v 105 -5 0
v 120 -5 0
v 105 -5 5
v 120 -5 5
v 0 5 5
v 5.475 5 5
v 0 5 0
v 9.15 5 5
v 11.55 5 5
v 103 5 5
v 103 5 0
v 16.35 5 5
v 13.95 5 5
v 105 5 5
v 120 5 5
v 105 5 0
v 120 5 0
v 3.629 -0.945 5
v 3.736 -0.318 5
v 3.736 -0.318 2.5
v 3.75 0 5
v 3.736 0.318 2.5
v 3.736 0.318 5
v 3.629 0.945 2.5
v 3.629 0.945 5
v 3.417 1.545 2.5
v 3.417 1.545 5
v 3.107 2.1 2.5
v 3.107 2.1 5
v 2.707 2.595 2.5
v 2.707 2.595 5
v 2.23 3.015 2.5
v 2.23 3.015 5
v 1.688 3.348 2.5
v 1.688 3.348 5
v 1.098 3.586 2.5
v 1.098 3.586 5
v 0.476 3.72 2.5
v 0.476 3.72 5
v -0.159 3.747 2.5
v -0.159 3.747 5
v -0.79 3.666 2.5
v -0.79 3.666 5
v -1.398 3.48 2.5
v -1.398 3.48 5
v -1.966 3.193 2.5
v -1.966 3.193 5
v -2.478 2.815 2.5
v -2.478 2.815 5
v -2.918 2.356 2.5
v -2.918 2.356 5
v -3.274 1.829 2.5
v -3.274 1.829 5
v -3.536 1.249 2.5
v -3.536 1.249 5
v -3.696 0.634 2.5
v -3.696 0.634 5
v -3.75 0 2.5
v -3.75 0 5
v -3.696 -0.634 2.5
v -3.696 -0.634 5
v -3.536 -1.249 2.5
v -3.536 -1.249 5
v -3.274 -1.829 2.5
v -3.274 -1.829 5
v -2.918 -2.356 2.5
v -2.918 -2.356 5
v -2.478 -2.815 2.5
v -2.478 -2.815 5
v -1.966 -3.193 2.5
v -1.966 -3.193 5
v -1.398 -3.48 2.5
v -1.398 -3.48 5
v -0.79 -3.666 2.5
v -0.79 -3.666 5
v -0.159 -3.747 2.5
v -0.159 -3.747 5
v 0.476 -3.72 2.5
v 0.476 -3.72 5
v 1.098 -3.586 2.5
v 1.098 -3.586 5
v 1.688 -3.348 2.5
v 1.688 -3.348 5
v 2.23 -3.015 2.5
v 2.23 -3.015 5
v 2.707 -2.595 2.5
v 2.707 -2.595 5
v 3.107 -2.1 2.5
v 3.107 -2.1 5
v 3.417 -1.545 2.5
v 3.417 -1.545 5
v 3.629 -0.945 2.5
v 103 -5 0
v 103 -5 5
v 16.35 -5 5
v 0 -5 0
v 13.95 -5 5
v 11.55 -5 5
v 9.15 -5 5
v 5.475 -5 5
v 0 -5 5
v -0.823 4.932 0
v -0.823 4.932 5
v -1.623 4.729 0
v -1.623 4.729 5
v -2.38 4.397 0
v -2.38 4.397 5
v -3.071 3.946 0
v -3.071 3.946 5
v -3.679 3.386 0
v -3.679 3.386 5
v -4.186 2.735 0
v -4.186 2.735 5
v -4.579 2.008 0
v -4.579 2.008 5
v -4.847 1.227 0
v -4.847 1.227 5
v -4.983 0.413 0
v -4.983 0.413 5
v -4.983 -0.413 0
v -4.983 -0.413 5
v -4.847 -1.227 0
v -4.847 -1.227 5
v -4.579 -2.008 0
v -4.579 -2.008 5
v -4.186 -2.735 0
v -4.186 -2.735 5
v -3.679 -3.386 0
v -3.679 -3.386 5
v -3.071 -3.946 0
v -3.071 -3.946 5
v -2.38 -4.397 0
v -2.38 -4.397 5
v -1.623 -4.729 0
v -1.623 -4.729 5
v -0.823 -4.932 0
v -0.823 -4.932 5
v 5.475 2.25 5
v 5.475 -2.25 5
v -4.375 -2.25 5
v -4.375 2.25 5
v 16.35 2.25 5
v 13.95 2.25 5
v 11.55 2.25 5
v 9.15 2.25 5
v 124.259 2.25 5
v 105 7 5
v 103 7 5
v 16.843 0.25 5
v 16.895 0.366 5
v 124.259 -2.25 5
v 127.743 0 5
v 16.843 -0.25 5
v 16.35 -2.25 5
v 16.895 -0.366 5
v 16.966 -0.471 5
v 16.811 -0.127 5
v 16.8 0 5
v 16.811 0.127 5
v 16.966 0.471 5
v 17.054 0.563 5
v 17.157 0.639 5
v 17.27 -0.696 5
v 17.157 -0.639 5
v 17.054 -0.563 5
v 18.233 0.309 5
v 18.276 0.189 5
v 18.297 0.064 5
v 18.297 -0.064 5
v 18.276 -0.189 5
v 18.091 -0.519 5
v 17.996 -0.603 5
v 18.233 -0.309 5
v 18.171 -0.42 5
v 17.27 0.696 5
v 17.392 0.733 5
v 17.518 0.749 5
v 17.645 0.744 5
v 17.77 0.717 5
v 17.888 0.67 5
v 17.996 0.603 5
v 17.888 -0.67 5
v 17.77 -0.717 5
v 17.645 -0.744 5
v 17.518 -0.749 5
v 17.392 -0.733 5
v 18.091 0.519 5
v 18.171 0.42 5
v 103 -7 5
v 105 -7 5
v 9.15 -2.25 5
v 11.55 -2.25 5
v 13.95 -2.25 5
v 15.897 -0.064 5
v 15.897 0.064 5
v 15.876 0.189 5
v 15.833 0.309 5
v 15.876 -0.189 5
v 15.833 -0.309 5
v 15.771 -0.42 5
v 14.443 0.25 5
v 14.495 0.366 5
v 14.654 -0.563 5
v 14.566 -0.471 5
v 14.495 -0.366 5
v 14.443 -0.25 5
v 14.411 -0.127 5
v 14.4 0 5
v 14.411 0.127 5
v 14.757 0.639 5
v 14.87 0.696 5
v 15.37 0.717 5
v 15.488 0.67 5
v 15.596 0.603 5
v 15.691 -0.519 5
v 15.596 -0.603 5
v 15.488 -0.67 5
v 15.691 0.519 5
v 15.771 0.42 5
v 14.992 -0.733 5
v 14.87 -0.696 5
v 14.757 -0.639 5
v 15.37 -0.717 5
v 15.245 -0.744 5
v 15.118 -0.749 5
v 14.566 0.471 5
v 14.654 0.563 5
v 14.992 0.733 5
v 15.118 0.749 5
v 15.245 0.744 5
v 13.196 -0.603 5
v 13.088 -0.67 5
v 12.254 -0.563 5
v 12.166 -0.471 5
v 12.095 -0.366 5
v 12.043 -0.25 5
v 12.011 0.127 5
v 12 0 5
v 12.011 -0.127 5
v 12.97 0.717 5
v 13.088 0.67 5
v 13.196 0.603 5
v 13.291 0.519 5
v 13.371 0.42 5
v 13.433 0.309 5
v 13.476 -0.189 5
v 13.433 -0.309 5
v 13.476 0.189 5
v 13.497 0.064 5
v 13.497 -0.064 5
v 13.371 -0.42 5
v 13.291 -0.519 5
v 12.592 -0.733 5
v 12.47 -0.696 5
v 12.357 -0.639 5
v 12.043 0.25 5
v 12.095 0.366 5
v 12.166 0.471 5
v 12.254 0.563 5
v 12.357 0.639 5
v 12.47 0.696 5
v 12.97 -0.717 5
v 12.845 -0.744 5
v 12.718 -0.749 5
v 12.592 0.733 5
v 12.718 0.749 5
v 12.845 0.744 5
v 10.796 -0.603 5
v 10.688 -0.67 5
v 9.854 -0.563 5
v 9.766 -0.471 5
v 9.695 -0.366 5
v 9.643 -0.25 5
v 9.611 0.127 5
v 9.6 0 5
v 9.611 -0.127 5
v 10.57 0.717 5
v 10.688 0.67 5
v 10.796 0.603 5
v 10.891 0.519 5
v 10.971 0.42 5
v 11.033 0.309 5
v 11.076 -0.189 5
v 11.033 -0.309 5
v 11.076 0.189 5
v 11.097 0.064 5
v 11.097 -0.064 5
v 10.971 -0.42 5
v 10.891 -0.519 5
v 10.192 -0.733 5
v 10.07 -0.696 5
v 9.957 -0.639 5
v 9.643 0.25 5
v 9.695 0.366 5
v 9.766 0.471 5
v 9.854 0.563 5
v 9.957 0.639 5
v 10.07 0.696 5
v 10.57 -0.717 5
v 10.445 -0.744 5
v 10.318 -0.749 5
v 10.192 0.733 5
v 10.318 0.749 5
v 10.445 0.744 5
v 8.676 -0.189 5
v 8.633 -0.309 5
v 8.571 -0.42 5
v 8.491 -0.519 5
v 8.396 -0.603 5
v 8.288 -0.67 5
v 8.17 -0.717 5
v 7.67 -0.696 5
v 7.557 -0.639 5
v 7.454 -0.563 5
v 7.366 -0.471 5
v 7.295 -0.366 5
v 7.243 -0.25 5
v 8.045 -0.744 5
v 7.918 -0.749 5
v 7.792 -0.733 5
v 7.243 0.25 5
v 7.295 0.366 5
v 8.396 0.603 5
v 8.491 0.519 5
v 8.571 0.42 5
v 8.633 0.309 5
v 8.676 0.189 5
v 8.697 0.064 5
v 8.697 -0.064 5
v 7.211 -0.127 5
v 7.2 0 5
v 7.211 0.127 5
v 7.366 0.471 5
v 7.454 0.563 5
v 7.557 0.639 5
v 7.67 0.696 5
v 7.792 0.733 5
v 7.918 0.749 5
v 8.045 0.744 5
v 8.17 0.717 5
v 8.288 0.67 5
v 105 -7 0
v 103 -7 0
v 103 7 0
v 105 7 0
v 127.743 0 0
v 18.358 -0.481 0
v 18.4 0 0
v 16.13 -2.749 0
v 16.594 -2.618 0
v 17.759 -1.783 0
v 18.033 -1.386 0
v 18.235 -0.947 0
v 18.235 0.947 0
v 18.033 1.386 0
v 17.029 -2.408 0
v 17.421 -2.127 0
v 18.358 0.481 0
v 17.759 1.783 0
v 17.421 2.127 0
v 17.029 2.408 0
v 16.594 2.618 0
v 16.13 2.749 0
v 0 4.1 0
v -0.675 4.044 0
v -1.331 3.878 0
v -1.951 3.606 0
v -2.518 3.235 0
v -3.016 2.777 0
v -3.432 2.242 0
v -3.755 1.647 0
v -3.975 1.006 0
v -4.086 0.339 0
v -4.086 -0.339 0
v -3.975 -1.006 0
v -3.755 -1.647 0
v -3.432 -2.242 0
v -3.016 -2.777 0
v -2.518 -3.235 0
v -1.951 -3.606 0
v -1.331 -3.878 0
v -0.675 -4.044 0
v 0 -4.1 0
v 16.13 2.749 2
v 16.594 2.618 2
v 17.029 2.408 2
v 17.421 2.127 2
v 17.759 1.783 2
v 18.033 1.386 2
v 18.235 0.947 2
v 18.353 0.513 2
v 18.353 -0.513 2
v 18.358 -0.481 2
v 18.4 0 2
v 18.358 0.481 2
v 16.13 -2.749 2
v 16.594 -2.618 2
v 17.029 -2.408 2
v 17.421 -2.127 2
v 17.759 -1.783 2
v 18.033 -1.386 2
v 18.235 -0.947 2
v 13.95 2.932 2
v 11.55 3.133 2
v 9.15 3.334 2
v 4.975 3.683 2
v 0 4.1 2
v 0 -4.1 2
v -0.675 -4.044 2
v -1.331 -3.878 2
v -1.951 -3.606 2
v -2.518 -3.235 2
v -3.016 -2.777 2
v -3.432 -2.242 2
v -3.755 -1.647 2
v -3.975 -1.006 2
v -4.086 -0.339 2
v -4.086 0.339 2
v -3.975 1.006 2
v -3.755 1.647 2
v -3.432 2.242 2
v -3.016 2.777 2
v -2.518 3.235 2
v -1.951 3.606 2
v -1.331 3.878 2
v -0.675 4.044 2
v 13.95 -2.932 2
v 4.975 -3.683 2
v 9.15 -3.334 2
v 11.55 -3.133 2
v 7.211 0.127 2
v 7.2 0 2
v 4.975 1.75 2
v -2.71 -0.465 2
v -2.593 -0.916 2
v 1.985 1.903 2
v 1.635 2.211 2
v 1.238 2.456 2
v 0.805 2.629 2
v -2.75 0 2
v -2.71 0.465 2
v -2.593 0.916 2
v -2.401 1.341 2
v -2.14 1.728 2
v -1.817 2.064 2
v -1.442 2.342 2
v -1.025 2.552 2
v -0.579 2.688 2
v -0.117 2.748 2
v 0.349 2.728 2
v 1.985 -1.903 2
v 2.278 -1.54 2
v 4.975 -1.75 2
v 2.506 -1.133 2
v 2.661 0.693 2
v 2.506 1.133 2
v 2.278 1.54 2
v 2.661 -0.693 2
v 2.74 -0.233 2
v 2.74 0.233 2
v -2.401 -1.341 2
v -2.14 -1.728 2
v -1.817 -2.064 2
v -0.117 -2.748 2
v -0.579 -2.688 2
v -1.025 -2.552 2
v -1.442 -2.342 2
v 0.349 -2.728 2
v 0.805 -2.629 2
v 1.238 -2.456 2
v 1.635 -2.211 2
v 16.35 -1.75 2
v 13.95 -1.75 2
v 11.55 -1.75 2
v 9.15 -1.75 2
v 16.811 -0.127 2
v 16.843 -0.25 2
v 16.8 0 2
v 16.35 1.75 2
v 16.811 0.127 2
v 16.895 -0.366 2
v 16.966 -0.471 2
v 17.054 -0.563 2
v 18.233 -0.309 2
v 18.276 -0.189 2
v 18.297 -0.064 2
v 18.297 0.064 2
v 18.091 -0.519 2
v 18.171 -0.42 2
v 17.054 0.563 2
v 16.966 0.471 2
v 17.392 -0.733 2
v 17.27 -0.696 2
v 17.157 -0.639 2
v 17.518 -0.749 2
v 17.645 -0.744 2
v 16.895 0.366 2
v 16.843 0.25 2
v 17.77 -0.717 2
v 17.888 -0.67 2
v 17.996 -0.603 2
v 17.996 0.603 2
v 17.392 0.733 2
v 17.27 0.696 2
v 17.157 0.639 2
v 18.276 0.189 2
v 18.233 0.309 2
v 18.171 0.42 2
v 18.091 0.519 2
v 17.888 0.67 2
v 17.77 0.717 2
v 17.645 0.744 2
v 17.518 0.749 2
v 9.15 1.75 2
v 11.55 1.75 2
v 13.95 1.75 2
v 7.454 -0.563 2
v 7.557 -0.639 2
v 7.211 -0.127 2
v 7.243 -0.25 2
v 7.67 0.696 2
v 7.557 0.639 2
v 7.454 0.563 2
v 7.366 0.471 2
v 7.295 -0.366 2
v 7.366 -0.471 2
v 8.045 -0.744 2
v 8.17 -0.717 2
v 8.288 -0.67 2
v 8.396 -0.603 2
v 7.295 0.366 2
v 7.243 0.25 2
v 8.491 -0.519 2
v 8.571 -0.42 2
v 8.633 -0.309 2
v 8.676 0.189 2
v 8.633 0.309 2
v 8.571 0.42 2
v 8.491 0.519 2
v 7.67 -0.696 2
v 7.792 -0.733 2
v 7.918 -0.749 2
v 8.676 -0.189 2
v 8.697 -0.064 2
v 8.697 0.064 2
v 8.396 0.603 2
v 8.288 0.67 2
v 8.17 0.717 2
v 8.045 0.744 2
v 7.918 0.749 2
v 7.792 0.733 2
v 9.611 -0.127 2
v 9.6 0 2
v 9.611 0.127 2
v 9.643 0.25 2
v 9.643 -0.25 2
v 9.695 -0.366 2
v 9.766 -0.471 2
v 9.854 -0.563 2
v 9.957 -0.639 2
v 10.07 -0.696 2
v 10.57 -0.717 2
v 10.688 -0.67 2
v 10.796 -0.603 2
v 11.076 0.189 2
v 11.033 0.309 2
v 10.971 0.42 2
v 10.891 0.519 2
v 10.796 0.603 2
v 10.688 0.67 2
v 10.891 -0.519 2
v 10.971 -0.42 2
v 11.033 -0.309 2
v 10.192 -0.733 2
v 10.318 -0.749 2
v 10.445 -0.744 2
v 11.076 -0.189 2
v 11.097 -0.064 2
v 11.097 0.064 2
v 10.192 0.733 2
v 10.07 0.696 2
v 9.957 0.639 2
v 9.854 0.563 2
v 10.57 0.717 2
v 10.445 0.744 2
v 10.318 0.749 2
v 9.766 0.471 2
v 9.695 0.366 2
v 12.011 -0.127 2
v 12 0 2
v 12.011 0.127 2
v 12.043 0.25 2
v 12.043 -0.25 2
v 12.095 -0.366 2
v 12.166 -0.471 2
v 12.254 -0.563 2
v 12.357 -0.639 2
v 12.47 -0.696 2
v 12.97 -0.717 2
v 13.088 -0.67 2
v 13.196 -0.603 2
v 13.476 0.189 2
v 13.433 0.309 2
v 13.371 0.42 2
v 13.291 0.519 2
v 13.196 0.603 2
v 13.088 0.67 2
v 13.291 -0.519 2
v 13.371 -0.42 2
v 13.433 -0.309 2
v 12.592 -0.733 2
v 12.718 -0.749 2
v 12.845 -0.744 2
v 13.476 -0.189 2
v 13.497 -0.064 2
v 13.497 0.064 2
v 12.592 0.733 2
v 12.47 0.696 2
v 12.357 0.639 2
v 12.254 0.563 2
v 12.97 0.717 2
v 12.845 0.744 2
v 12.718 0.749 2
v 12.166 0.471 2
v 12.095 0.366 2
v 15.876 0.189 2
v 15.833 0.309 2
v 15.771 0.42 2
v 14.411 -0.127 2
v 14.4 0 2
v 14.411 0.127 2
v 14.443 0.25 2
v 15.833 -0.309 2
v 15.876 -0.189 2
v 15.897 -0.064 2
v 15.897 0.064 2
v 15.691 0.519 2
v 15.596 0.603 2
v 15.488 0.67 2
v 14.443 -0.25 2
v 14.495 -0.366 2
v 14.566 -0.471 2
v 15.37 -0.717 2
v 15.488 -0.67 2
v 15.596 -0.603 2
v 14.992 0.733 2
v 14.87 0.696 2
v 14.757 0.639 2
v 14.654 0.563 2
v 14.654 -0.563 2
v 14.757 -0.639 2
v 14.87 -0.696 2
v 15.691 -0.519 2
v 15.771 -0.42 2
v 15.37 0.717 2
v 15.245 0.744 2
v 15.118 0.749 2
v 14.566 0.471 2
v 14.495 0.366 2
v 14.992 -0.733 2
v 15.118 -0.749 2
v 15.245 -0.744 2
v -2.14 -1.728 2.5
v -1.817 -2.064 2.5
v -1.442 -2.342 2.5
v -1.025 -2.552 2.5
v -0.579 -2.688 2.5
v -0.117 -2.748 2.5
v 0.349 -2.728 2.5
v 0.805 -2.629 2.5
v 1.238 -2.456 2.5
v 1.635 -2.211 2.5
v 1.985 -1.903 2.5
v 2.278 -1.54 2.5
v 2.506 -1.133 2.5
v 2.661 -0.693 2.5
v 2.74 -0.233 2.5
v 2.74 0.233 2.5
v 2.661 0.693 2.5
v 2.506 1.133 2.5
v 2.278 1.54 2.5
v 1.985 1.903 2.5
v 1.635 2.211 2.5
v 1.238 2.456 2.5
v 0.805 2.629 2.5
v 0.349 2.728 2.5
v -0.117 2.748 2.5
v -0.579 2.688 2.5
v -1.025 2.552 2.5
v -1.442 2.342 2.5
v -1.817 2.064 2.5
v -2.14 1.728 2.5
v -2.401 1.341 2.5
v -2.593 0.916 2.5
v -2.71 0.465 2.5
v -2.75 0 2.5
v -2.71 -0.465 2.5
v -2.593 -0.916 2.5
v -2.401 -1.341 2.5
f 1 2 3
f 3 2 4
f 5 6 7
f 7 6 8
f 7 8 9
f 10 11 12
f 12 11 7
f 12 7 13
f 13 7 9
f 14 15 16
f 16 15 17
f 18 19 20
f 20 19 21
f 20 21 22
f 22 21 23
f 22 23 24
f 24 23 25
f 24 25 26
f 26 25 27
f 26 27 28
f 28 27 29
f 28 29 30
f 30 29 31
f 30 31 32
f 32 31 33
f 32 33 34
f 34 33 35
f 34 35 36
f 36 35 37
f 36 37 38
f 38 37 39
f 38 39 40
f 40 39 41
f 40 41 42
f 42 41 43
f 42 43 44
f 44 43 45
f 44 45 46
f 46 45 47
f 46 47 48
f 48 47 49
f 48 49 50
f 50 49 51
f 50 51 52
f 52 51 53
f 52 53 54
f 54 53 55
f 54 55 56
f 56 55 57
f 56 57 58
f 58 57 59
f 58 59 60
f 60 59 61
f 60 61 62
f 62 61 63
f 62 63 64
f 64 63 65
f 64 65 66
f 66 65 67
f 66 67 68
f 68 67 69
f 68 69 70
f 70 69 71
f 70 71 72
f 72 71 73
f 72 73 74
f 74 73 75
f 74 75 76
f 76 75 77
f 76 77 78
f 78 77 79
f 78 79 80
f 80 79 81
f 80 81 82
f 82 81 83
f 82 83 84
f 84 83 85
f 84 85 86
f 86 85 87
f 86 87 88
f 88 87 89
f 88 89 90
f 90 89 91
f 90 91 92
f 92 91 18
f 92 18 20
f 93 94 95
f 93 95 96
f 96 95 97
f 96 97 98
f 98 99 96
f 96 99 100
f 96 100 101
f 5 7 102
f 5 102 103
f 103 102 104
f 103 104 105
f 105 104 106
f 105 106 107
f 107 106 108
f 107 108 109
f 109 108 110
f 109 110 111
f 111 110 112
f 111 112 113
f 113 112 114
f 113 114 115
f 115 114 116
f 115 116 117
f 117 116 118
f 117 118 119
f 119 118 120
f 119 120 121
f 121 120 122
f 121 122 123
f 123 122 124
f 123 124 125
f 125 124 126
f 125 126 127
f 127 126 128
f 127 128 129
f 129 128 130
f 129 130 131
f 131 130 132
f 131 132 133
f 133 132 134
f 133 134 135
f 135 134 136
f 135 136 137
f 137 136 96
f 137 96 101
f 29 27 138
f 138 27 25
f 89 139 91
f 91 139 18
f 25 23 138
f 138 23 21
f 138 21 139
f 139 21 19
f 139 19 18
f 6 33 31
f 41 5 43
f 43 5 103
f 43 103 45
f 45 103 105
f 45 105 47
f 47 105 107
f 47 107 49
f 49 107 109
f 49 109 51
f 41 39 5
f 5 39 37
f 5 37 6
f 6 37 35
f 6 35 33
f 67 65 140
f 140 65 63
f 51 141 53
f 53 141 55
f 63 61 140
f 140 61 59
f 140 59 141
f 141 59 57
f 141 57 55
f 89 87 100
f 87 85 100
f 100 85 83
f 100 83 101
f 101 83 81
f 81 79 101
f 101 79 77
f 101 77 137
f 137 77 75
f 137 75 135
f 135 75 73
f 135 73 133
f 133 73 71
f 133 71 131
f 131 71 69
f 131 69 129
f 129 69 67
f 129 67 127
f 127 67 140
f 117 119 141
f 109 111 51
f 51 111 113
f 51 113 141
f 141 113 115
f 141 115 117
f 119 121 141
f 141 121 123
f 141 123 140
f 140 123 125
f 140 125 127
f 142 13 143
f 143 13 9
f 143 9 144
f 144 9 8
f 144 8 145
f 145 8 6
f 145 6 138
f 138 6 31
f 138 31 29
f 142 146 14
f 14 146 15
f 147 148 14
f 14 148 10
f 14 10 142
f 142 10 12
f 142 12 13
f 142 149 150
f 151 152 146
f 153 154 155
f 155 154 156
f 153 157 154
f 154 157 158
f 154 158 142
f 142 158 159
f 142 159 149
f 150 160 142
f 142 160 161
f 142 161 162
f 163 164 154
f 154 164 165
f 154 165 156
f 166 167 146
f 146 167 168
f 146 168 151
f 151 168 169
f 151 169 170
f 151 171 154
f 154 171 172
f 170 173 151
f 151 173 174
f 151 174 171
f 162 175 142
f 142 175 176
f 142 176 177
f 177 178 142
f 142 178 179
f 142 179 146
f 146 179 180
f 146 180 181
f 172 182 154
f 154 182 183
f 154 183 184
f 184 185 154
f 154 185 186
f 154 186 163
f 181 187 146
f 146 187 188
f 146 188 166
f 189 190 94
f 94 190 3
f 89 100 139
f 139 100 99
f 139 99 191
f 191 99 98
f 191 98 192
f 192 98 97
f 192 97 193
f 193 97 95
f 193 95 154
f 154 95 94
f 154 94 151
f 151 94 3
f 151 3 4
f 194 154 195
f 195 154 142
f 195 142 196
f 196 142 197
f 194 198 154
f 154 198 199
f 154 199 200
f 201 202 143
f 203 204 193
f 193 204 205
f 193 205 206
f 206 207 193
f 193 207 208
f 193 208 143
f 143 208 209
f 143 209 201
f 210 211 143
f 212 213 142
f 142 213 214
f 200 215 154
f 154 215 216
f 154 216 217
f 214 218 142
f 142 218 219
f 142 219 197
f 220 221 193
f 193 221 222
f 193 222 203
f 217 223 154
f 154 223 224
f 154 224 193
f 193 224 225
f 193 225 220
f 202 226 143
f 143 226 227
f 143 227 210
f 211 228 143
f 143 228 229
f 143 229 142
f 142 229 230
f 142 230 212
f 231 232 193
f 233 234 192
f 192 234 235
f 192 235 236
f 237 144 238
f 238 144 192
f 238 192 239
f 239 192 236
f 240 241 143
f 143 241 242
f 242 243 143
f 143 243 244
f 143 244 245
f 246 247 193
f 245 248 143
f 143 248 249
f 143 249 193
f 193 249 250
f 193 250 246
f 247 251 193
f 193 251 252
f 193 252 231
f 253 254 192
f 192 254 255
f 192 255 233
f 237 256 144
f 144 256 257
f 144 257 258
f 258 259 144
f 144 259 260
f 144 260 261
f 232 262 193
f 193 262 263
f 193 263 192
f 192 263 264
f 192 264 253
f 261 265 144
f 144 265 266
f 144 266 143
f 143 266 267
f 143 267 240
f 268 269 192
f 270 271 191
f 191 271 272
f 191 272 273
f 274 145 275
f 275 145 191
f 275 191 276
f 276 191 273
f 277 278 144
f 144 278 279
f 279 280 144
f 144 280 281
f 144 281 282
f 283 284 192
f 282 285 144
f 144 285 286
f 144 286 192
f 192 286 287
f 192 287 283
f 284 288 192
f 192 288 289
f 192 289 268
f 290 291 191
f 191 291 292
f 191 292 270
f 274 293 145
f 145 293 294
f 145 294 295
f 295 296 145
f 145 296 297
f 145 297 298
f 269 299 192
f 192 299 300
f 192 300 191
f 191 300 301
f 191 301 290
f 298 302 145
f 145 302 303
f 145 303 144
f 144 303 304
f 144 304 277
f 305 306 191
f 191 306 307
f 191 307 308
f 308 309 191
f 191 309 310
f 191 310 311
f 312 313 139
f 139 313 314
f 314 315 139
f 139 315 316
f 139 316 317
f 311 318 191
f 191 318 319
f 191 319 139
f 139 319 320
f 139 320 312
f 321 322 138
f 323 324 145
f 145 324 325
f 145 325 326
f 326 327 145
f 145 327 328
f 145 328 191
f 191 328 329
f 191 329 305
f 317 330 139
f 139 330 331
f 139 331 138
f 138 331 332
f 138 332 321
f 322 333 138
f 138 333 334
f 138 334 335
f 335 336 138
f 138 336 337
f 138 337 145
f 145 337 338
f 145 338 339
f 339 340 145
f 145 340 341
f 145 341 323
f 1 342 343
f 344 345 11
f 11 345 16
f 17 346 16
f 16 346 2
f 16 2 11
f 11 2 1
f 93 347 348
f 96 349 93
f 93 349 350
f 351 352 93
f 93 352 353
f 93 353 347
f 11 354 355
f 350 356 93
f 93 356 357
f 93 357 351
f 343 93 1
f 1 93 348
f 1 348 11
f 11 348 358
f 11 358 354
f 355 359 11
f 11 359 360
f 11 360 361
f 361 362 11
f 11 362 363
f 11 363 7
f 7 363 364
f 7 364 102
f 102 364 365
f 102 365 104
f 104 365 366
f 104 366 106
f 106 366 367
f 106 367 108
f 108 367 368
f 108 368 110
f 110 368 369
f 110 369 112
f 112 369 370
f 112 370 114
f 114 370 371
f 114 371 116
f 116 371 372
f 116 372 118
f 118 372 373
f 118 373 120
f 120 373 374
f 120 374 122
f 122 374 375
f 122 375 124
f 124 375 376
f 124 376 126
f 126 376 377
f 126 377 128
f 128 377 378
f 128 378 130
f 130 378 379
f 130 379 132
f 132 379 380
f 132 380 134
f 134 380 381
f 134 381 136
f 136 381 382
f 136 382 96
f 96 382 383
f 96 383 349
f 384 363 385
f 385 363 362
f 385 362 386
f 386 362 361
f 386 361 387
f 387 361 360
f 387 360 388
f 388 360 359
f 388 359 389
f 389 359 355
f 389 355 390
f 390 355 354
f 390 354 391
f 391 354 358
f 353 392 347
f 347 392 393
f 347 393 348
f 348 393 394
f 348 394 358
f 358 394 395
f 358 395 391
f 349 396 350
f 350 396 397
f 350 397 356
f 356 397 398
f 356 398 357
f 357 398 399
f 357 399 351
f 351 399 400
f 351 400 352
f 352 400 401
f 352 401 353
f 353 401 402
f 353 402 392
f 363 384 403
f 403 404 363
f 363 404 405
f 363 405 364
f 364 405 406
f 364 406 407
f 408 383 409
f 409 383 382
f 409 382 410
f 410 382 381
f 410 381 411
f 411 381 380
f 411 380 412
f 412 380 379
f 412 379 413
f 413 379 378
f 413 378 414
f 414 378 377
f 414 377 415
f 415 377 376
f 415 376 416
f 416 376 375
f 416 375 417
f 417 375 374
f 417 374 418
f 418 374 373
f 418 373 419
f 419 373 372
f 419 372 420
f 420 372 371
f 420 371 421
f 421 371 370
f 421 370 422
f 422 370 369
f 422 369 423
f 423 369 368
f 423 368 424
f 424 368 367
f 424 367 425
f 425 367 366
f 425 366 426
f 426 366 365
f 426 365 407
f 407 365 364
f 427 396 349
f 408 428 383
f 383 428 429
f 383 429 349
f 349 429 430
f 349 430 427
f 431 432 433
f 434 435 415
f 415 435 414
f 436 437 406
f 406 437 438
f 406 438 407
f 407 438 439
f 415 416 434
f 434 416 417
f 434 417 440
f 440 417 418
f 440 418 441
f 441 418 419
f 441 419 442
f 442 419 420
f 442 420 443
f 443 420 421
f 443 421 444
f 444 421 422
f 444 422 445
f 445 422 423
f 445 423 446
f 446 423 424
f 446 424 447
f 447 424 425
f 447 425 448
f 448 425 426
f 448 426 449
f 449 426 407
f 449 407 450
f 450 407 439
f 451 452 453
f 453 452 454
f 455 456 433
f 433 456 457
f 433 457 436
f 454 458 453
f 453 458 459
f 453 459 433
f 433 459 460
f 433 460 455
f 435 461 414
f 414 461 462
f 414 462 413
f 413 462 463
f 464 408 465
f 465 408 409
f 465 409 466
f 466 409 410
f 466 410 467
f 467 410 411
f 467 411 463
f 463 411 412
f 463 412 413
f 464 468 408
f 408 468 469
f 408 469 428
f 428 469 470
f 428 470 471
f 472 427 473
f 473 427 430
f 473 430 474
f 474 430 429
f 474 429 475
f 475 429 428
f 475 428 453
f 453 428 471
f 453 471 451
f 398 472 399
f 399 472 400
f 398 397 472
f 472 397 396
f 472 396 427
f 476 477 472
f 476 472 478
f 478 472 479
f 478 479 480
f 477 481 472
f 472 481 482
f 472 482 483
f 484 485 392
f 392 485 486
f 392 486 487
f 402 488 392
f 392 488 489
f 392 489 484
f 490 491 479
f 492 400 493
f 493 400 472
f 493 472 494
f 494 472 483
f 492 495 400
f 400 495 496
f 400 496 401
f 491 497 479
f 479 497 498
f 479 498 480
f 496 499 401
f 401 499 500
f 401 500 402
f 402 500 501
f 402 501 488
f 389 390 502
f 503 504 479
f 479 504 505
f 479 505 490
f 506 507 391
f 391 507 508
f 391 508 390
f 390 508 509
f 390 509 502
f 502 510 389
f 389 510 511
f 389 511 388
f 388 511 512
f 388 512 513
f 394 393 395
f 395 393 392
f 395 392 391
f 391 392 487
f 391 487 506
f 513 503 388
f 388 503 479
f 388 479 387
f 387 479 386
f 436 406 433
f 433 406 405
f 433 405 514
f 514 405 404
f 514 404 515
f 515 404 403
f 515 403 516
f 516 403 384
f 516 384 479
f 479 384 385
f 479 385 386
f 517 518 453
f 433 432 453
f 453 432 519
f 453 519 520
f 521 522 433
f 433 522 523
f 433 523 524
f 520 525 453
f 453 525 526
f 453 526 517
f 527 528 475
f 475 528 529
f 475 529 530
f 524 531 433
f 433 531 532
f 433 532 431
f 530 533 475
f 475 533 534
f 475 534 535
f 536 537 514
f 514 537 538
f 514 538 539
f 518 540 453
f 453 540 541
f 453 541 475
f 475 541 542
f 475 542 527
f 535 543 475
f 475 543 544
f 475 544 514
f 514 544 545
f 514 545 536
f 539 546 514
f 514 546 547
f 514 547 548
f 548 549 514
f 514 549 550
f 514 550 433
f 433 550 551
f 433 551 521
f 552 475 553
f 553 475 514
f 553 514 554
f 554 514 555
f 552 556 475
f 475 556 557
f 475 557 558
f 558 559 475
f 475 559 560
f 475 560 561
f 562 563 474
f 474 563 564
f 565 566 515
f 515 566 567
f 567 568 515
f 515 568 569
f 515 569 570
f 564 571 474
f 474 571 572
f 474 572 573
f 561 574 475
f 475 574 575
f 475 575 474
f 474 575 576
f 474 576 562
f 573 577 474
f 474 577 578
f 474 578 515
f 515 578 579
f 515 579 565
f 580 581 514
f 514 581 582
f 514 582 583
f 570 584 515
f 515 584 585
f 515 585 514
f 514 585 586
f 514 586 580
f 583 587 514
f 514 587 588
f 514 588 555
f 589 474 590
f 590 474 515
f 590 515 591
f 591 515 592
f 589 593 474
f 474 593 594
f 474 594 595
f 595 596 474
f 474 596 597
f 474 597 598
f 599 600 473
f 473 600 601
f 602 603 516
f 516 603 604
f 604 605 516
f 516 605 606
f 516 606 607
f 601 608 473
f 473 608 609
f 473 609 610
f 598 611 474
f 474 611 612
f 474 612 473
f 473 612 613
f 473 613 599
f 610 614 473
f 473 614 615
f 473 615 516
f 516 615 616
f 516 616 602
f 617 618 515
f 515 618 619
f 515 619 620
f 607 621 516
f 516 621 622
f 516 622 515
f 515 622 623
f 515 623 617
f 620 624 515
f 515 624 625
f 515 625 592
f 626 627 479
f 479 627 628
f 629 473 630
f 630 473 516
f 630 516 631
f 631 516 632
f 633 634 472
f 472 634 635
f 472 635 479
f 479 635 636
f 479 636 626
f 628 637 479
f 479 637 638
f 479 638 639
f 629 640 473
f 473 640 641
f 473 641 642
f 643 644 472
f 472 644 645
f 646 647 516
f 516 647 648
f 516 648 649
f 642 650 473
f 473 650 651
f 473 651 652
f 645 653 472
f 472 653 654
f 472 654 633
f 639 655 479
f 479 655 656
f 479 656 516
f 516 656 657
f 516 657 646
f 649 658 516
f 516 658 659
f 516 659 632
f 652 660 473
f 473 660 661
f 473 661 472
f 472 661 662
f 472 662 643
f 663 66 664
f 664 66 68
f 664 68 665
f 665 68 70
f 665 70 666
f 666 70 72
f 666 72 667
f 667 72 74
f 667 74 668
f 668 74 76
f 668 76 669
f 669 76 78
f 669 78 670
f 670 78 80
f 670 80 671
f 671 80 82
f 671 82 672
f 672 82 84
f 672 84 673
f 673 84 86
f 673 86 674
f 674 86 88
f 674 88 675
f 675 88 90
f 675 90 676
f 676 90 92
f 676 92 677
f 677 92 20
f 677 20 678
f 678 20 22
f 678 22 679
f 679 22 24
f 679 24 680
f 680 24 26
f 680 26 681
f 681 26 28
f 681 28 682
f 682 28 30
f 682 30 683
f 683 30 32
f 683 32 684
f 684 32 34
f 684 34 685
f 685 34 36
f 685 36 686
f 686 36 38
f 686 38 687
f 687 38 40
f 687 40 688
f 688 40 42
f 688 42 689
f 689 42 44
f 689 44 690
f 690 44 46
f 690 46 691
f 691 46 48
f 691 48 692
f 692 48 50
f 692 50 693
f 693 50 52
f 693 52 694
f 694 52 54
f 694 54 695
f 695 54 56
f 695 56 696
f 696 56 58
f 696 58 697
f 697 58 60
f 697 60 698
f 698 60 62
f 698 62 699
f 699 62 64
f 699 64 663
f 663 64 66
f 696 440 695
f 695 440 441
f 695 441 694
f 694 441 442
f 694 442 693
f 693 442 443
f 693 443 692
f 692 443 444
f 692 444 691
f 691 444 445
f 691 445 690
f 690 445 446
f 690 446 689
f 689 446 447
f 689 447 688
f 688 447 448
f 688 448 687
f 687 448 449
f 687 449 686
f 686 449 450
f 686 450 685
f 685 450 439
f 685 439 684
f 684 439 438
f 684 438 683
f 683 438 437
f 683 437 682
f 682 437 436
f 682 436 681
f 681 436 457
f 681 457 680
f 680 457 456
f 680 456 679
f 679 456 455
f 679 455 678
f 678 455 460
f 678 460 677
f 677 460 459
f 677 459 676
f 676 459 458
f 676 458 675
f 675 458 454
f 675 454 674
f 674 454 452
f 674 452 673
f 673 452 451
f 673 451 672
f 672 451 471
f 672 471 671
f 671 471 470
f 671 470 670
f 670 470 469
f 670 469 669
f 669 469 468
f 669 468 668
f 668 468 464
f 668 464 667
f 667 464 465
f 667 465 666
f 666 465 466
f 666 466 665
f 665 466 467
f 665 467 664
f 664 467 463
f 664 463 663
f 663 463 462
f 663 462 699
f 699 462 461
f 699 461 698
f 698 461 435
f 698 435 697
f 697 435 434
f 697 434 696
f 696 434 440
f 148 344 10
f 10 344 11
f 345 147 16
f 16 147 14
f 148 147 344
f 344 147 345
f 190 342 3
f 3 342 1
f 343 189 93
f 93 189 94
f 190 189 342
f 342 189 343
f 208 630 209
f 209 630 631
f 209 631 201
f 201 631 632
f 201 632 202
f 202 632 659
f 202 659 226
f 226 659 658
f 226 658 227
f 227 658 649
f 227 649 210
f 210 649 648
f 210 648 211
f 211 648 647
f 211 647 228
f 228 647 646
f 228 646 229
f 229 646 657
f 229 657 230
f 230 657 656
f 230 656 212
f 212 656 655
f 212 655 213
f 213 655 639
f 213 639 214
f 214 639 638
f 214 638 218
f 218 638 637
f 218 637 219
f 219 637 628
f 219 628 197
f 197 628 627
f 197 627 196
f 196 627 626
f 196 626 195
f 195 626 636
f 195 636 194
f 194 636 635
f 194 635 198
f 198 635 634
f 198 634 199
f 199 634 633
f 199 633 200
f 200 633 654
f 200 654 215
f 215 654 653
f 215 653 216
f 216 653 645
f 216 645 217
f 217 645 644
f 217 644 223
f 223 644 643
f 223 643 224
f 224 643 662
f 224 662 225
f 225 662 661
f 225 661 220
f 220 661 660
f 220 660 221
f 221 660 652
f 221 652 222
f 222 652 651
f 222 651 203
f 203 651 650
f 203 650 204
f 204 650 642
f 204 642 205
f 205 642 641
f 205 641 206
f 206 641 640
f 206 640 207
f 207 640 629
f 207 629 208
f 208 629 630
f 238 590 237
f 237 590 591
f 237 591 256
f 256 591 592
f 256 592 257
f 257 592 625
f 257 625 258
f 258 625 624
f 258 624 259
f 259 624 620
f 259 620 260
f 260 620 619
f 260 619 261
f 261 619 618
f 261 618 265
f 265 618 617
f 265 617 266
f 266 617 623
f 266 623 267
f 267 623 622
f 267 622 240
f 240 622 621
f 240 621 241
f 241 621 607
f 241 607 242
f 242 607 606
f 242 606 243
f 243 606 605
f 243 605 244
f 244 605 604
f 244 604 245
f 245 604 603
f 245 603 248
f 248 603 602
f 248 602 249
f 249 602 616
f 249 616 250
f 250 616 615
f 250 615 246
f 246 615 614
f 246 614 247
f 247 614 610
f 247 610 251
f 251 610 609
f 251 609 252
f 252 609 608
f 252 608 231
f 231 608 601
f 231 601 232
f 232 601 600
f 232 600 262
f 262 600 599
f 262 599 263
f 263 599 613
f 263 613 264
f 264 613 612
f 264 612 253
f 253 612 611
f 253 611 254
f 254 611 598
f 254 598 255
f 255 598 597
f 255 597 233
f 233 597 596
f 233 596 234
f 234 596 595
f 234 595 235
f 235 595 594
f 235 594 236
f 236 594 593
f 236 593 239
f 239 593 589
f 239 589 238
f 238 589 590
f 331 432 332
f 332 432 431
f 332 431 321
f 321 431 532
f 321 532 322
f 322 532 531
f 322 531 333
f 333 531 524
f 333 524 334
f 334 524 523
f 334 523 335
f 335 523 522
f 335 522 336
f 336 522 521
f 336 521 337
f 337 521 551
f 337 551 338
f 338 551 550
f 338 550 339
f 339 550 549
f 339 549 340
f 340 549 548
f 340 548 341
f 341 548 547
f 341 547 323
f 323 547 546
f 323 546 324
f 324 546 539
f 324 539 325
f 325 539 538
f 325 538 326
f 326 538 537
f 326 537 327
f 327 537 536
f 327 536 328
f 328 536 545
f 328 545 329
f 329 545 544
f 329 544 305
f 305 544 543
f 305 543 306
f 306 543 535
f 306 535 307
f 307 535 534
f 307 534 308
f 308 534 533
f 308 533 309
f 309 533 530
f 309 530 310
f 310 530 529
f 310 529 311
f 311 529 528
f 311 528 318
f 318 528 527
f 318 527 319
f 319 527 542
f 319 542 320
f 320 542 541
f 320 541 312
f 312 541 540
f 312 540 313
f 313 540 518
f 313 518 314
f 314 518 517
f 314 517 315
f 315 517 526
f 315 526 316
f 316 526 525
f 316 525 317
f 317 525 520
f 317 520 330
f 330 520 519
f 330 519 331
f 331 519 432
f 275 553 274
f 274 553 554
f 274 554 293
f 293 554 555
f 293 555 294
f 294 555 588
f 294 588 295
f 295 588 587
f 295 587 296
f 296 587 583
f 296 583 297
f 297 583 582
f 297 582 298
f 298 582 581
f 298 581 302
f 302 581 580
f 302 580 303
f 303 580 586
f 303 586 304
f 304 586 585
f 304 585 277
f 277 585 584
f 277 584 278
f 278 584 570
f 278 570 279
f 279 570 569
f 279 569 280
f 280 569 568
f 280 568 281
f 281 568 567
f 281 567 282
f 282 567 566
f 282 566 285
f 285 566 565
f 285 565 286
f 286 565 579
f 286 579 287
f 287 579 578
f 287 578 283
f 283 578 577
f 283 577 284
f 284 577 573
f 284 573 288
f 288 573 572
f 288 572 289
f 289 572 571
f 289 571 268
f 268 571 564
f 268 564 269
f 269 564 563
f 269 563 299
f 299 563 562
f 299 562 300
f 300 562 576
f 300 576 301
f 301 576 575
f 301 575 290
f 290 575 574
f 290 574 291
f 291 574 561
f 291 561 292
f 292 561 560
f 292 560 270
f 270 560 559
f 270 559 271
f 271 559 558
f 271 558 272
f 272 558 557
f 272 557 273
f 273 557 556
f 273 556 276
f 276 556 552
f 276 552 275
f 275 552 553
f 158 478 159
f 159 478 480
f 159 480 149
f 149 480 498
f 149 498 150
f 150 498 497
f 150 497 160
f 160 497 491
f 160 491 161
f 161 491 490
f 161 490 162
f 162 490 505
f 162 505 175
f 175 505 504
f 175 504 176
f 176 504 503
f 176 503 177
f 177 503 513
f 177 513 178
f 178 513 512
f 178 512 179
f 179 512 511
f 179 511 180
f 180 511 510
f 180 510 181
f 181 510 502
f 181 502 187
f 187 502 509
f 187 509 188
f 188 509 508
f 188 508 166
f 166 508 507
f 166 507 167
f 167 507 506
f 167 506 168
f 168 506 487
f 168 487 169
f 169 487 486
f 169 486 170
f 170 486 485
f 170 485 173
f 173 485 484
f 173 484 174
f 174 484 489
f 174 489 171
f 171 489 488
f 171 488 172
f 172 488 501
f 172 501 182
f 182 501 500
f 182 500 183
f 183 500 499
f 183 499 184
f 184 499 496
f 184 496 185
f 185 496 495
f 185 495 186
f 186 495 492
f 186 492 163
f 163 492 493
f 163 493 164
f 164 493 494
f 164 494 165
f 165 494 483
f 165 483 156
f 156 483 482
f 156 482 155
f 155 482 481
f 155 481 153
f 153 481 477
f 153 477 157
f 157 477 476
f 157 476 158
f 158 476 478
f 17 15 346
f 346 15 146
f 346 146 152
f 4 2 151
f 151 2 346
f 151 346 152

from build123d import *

# Parameters (mm, degrees)
SKETCH1_R               = 3.75
BOSS_EXTRUDE1_DEPTH     = 5
CUT_EXTRUDE2_DEPTH      = 2
SKETCH4_R               = 3.75
SKETCH4_R_2             = 2.75
BOSS_EXTRUDE2_DEPTH     = 0.5
SKETCH5_W               = 2
SKETCH5_H               = 5
BOSS_EXTRUDE3_DEPTH     = 2
SKETCH5_2_W             = 2
SKETCH5_2_H             = 5
BOSS_EXTRUDE4_DEPTH     = 12
CUT_EXTRUDE3_DEPTH      = 121.241423811
CUT_EXTRUDE3_DEPTH_BACK = 121.241423811
SKETCH6_R               = 0.75
BOSS_EXTRUDE5_DEPTH     = 5


with BuildPart() as part:
    # Sketch1 → Boss-Extrude1 (new body)
    with BuildSketch(Plane.XY):
        with BuildLine():
            Line((120, 5), (120, -5))
            Line((120, -5), (0, -5))
            ThreePointArc((0, -5), (-5, 0), (0, 5))
            Line((0, 5), (120, 5))
        make_face()
        Circle(SKETCH1_R, mode=Mode.SUBTRACT)
    extrude(amount=BOSS_EXTRUDE1_DEPTH)

    # Sketch3 → Cut-Extrude2 (cut)
    with BuildSketch(Plane(origin=(0, 0, 0), x_dir=(-1, 0, 0), z_dir=(0, 0, -1))):
        with BuildLine():
            Line((-16.129718884, 2.749435925), (0, 4.1))
            ThreePointArc((0, 4.1), (4.1, 0), (0, -4.1))
            Line((0, -4.1), (-16.129718884, -2.749435925))
            ThreePointArc((-16.129718884, -2.749435925), (-18.4, 0), (-16.129718884, 2.749435925))
        make_face()
    extrude(amount=-CUT_EXTRUDE2_DEPTH, mode=Mode.SUBTRACT)

    # Sketch4 → Boss-Extrude2 (add)
    with BuildSketch(Plane(origin=(0, 0, 2), x_dir=(-1, 0, 0), z_dir=(0, 0, -1))):
        Circle(SKETCH4_R)
        Circle(SKETCH4_R_2, mode=Mode.SUBTRACT)
    extrude(amount=-BOSS_EXTRUDE2_DEPTH)

    # Sketch5 → Boss-Extrude3 (add)
    with BuildSketch(Plane(origin=(0, 5, 0), x_dir=(1, 0, 0), z_dir=(0, 1, 0))):
        with Locations((104, -2.5)):
            Rectangle(SKETCH5_W, SKETCH5_H)
    extrude(amount=BOSS_EXTRUDE3_DEPTH)

    # Sketch5<2> → Boss-Extrude4 (add)
    with BuildSketch(Plane(origin=(0, 5, 0), x_dir=(1, 0, 0), z_dir=(0, 1, 0))):
        with Locations((104, -2.5)):
            Rectangle(SKETCH5_2_W, SKETCH5_2_H)
    extrude(amount=-BOSS_EXTRUDE4_DEPTH)

    # Sketch6 → Cut-Extrude3 (cut, two sides: drawn at the far end of the back side and taken through both)
    with BuildSketch(Plane(origin=(0, 0, 2), x_dir=(-1, 0, 0), z_dir=(0, 0, -1)).offset(-CUT_EXTRUDE3_DEPTH_BACK)):
        with Locations((-17.55, 0)):
            Circle(SKETCH6_R)
        with BuildLine():
            ThreePointArc((-15.9, 0), (-15.15, -0.75), (-14.4, 0))
            Line((-14.4, 0), (-15.9, 0))
        make_face()
        with BuildLine():
            Line((-15.9, 0), (-14.4, 0))
            ThreePointArc((-14.4, 0), (-15.15, 0.75), (-15.9, 0))
        make_face()
        with BuildLine():
            ThreePointArc((-13.5, 0), (-12.75, -0.75), (-12, 0))
            Line((-12, 0), (-13.5, 0))
        make_face()
        with BuildLine():
            Line((-13.5, 0), (-12, 0))
            ThreePointArc((-12, 0), (-12.75, 0.75), (-13.5, 0))
        make_face()
        with BuildLine():
            ThreePointArc((-11.1, 0), (-10.35, -0.75), (-9.6, 0))
            Line((-9.6, 0), (-11.1, 0))
        make_face()
        with BuildLine():
            Line((-11.1, 0), (-9.6, 0))
            ThreePointArc((-9.6, 0), (-10.35, 0.75), (-11.1, 0))
        make_face()
        with BuildLine():
            ThreePointArc((-8.7, 0), (-7.95, -0.75), (-7.2, 0))
            Line((-7.2, 0), (-8.7, 0))
        make_face()
        with BuildLine():
            Line((-8.7, 0), (-7.2, 0))
            ThreePointArc((-7.2, 0), (-7.95, 0.75), (-8.7, 0))
        make_face()
    extrude(amount=CUT_EXTRUDE3_DEPTH + CUT_EXTRUDE3_DEPTH_BACK, mode=Mode.SUBTRACT)

    # Sketch7 → Boss-Extrude5 (add)
    with BuildSketch(Plane.XY.offset(5)):
        Polygon((120, 5), (127.743232655, 0), (120, -5), align=None)
    extrude(amount=-BOSS_EXTRUDE5_DEPTH)


solid = part.part
